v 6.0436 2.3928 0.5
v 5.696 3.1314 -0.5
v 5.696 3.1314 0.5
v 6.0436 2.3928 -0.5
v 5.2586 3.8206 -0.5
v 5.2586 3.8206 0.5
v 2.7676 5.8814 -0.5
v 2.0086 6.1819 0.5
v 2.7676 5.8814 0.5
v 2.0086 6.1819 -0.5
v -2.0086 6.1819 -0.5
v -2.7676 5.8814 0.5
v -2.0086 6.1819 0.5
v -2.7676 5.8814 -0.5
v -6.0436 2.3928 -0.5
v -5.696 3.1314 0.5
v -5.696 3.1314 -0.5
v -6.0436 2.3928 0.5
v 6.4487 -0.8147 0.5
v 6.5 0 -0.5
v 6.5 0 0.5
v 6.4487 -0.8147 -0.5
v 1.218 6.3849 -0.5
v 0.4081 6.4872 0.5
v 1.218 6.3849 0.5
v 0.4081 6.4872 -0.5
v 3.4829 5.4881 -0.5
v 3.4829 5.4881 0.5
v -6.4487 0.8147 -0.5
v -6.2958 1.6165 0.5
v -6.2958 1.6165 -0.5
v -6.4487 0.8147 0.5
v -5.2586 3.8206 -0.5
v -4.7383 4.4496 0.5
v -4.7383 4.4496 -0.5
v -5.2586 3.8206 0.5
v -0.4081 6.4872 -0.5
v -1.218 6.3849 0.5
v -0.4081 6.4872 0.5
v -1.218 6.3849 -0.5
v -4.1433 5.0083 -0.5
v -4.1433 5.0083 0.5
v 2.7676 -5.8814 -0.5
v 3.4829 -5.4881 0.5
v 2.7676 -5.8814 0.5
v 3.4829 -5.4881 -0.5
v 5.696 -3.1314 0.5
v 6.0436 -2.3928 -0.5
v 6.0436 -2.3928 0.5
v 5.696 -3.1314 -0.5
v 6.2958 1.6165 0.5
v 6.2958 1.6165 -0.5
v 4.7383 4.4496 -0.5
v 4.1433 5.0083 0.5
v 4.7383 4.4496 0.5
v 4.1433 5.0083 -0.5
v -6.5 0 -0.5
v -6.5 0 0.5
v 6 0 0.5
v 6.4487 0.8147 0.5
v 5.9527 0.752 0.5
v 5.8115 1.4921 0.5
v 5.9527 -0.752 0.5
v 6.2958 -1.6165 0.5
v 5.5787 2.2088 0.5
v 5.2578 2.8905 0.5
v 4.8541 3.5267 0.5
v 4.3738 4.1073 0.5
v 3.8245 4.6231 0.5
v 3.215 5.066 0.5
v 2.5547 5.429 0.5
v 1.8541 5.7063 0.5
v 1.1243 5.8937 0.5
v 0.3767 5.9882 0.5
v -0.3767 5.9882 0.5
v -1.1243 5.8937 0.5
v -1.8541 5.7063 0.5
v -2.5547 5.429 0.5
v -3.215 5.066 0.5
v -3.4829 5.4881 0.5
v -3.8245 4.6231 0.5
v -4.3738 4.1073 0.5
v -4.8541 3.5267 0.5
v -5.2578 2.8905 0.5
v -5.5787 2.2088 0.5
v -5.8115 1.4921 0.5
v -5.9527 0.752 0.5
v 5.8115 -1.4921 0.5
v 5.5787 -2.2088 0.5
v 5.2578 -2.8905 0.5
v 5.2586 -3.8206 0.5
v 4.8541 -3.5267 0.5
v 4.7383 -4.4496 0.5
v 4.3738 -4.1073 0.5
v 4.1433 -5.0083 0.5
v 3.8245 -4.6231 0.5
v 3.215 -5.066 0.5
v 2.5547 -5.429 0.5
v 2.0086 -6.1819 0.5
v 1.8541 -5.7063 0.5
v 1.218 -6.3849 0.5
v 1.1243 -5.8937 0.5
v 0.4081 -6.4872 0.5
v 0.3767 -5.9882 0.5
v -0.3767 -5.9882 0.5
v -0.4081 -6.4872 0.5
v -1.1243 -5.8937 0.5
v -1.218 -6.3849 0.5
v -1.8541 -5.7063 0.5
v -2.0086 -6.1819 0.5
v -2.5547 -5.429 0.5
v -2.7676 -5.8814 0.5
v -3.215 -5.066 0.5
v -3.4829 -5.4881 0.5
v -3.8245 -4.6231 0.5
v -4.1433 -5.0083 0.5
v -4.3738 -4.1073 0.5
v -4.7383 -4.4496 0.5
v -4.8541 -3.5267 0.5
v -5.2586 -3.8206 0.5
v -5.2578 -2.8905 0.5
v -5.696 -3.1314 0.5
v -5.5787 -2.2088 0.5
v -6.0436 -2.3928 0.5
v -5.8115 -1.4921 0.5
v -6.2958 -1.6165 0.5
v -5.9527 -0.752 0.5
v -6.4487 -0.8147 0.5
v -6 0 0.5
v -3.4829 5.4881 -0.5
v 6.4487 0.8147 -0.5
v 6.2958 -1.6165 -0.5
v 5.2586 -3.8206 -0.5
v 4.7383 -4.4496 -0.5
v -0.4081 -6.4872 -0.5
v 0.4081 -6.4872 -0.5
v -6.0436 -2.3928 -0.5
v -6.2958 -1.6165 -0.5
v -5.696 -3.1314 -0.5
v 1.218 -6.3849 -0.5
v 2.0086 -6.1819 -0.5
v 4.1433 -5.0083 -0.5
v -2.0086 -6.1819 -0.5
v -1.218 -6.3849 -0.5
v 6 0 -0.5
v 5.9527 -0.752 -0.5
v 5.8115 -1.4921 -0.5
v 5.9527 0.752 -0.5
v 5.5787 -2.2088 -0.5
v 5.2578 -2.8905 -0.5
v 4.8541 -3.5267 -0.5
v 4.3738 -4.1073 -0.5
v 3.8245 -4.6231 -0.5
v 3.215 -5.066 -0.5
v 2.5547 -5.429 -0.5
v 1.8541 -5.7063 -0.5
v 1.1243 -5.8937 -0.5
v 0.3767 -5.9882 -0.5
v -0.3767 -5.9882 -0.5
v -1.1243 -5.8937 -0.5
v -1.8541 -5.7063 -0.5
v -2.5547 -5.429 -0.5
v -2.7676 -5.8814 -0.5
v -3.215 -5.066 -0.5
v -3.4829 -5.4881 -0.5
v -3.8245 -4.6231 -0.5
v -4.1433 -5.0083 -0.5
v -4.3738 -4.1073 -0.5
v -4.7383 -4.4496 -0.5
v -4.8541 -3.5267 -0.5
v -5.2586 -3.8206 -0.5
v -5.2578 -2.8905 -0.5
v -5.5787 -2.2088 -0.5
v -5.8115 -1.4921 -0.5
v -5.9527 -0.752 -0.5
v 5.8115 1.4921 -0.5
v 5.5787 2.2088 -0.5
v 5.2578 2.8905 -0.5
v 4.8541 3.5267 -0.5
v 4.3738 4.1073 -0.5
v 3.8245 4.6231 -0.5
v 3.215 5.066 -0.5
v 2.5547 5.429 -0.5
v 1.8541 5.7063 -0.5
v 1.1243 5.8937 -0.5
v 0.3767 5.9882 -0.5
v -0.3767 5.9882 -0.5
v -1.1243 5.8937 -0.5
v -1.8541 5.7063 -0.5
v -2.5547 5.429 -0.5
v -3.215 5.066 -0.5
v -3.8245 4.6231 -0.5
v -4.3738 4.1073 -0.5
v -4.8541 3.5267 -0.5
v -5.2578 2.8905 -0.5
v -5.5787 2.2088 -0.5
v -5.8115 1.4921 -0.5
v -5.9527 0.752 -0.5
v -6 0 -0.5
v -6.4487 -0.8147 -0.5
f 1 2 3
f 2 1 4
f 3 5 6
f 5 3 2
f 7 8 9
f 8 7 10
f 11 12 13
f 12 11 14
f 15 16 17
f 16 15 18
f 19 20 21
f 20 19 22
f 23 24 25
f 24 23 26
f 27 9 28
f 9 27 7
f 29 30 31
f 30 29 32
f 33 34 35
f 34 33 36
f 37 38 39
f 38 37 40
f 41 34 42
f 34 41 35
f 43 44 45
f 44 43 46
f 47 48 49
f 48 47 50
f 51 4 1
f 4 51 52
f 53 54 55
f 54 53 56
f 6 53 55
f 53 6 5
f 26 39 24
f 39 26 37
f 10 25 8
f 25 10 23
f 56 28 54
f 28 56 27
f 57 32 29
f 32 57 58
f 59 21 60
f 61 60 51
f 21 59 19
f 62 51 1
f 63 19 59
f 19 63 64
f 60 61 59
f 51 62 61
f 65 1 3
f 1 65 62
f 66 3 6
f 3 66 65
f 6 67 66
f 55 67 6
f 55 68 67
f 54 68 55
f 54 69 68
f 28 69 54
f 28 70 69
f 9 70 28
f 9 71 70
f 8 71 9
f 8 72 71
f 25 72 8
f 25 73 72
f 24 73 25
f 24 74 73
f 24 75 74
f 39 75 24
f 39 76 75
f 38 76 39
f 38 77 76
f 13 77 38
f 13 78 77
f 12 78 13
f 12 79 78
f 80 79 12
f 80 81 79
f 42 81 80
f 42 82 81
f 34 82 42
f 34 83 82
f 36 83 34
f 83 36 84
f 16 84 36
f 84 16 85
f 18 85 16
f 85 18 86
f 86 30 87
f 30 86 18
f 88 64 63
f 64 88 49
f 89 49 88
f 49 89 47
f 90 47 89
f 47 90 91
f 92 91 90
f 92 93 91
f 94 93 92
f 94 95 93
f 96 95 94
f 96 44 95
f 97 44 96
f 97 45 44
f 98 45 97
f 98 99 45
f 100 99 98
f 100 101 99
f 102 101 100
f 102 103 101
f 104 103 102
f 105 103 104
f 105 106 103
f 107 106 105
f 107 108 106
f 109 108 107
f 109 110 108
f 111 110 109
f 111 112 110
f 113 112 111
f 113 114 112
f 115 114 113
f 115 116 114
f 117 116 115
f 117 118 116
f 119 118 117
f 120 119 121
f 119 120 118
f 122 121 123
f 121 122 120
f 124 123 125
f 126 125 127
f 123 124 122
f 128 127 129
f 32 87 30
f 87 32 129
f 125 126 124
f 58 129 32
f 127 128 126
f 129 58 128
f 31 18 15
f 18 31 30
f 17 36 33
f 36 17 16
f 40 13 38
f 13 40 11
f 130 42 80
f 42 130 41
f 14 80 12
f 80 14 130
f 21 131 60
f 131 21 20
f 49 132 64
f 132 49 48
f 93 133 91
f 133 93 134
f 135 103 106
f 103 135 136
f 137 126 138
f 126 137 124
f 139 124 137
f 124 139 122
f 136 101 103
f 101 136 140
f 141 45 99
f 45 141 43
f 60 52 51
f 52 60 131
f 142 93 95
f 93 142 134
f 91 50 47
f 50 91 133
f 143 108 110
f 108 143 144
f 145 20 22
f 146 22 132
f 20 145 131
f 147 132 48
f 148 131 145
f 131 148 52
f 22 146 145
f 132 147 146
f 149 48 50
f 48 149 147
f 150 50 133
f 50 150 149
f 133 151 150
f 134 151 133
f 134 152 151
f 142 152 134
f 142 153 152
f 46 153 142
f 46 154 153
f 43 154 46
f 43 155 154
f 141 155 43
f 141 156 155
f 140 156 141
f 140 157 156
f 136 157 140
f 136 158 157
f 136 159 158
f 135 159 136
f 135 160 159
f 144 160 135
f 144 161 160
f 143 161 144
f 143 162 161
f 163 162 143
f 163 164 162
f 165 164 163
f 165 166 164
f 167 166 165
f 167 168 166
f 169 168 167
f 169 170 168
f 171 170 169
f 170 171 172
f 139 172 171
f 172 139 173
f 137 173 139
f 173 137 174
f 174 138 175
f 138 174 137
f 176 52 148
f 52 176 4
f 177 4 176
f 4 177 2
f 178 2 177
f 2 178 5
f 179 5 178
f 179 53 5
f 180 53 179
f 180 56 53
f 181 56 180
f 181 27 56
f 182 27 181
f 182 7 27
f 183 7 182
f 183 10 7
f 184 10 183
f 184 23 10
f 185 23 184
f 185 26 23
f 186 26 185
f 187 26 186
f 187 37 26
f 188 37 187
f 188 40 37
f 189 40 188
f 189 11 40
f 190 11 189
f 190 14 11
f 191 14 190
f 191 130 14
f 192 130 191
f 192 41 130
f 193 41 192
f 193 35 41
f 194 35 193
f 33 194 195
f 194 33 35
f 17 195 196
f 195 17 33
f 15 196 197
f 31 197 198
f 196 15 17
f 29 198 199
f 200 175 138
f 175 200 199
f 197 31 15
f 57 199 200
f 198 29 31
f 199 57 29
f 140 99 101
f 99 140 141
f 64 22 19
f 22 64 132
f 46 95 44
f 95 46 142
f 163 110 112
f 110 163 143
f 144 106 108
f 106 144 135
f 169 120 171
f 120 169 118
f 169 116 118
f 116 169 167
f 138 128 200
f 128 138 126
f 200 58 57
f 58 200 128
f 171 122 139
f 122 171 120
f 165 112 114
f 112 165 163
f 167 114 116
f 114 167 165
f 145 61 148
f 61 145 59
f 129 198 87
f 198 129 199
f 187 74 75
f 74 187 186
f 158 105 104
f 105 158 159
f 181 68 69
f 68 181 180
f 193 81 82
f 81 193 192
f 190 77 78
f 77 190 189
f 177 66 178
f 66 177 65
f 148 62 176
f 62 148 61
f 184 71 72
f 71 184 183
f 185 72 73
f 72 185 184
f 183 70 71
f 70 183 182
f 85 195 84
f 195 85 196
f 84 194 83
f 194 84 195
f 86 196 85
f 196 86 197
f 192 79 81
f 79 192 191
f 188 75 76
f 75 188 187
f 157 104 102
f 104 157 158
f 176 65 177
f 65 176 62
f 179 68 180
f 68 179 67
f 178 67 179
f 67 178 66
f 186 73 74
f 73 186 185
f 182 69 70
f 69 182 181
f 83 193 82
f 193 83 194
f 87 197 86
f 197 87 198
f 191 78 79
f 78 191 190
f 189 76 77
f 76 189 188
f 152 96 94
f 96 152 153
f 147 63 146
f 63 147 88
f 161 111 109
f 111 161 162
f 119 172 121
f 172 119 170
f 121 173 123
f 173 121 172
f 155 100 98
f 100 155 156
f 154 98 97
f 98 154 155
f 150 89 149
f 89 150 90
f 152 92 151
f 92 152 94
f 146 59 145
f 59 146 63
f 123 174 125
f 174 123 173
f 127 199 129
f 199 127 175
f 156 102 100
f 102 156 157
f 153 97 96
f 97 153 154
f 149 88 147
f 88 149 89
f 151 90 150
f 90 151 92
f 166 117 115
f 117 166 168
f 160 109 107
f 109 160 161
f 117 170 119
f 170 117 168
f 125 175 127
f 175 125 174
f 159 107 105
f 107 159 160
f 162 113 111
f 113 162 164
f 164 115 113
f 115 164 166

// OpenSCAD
$fn = 50;


difference() {
	union() {
		translate(v = [0, 0, -0.5000000000]) {
			cylinder(h = 1, r = 6.5000000000);
		}
	}
	union() {
		translate(v = [0, 0, -100.0000000000]) {
			cylinder(h = 200, r = 6);
		}
	}
}
